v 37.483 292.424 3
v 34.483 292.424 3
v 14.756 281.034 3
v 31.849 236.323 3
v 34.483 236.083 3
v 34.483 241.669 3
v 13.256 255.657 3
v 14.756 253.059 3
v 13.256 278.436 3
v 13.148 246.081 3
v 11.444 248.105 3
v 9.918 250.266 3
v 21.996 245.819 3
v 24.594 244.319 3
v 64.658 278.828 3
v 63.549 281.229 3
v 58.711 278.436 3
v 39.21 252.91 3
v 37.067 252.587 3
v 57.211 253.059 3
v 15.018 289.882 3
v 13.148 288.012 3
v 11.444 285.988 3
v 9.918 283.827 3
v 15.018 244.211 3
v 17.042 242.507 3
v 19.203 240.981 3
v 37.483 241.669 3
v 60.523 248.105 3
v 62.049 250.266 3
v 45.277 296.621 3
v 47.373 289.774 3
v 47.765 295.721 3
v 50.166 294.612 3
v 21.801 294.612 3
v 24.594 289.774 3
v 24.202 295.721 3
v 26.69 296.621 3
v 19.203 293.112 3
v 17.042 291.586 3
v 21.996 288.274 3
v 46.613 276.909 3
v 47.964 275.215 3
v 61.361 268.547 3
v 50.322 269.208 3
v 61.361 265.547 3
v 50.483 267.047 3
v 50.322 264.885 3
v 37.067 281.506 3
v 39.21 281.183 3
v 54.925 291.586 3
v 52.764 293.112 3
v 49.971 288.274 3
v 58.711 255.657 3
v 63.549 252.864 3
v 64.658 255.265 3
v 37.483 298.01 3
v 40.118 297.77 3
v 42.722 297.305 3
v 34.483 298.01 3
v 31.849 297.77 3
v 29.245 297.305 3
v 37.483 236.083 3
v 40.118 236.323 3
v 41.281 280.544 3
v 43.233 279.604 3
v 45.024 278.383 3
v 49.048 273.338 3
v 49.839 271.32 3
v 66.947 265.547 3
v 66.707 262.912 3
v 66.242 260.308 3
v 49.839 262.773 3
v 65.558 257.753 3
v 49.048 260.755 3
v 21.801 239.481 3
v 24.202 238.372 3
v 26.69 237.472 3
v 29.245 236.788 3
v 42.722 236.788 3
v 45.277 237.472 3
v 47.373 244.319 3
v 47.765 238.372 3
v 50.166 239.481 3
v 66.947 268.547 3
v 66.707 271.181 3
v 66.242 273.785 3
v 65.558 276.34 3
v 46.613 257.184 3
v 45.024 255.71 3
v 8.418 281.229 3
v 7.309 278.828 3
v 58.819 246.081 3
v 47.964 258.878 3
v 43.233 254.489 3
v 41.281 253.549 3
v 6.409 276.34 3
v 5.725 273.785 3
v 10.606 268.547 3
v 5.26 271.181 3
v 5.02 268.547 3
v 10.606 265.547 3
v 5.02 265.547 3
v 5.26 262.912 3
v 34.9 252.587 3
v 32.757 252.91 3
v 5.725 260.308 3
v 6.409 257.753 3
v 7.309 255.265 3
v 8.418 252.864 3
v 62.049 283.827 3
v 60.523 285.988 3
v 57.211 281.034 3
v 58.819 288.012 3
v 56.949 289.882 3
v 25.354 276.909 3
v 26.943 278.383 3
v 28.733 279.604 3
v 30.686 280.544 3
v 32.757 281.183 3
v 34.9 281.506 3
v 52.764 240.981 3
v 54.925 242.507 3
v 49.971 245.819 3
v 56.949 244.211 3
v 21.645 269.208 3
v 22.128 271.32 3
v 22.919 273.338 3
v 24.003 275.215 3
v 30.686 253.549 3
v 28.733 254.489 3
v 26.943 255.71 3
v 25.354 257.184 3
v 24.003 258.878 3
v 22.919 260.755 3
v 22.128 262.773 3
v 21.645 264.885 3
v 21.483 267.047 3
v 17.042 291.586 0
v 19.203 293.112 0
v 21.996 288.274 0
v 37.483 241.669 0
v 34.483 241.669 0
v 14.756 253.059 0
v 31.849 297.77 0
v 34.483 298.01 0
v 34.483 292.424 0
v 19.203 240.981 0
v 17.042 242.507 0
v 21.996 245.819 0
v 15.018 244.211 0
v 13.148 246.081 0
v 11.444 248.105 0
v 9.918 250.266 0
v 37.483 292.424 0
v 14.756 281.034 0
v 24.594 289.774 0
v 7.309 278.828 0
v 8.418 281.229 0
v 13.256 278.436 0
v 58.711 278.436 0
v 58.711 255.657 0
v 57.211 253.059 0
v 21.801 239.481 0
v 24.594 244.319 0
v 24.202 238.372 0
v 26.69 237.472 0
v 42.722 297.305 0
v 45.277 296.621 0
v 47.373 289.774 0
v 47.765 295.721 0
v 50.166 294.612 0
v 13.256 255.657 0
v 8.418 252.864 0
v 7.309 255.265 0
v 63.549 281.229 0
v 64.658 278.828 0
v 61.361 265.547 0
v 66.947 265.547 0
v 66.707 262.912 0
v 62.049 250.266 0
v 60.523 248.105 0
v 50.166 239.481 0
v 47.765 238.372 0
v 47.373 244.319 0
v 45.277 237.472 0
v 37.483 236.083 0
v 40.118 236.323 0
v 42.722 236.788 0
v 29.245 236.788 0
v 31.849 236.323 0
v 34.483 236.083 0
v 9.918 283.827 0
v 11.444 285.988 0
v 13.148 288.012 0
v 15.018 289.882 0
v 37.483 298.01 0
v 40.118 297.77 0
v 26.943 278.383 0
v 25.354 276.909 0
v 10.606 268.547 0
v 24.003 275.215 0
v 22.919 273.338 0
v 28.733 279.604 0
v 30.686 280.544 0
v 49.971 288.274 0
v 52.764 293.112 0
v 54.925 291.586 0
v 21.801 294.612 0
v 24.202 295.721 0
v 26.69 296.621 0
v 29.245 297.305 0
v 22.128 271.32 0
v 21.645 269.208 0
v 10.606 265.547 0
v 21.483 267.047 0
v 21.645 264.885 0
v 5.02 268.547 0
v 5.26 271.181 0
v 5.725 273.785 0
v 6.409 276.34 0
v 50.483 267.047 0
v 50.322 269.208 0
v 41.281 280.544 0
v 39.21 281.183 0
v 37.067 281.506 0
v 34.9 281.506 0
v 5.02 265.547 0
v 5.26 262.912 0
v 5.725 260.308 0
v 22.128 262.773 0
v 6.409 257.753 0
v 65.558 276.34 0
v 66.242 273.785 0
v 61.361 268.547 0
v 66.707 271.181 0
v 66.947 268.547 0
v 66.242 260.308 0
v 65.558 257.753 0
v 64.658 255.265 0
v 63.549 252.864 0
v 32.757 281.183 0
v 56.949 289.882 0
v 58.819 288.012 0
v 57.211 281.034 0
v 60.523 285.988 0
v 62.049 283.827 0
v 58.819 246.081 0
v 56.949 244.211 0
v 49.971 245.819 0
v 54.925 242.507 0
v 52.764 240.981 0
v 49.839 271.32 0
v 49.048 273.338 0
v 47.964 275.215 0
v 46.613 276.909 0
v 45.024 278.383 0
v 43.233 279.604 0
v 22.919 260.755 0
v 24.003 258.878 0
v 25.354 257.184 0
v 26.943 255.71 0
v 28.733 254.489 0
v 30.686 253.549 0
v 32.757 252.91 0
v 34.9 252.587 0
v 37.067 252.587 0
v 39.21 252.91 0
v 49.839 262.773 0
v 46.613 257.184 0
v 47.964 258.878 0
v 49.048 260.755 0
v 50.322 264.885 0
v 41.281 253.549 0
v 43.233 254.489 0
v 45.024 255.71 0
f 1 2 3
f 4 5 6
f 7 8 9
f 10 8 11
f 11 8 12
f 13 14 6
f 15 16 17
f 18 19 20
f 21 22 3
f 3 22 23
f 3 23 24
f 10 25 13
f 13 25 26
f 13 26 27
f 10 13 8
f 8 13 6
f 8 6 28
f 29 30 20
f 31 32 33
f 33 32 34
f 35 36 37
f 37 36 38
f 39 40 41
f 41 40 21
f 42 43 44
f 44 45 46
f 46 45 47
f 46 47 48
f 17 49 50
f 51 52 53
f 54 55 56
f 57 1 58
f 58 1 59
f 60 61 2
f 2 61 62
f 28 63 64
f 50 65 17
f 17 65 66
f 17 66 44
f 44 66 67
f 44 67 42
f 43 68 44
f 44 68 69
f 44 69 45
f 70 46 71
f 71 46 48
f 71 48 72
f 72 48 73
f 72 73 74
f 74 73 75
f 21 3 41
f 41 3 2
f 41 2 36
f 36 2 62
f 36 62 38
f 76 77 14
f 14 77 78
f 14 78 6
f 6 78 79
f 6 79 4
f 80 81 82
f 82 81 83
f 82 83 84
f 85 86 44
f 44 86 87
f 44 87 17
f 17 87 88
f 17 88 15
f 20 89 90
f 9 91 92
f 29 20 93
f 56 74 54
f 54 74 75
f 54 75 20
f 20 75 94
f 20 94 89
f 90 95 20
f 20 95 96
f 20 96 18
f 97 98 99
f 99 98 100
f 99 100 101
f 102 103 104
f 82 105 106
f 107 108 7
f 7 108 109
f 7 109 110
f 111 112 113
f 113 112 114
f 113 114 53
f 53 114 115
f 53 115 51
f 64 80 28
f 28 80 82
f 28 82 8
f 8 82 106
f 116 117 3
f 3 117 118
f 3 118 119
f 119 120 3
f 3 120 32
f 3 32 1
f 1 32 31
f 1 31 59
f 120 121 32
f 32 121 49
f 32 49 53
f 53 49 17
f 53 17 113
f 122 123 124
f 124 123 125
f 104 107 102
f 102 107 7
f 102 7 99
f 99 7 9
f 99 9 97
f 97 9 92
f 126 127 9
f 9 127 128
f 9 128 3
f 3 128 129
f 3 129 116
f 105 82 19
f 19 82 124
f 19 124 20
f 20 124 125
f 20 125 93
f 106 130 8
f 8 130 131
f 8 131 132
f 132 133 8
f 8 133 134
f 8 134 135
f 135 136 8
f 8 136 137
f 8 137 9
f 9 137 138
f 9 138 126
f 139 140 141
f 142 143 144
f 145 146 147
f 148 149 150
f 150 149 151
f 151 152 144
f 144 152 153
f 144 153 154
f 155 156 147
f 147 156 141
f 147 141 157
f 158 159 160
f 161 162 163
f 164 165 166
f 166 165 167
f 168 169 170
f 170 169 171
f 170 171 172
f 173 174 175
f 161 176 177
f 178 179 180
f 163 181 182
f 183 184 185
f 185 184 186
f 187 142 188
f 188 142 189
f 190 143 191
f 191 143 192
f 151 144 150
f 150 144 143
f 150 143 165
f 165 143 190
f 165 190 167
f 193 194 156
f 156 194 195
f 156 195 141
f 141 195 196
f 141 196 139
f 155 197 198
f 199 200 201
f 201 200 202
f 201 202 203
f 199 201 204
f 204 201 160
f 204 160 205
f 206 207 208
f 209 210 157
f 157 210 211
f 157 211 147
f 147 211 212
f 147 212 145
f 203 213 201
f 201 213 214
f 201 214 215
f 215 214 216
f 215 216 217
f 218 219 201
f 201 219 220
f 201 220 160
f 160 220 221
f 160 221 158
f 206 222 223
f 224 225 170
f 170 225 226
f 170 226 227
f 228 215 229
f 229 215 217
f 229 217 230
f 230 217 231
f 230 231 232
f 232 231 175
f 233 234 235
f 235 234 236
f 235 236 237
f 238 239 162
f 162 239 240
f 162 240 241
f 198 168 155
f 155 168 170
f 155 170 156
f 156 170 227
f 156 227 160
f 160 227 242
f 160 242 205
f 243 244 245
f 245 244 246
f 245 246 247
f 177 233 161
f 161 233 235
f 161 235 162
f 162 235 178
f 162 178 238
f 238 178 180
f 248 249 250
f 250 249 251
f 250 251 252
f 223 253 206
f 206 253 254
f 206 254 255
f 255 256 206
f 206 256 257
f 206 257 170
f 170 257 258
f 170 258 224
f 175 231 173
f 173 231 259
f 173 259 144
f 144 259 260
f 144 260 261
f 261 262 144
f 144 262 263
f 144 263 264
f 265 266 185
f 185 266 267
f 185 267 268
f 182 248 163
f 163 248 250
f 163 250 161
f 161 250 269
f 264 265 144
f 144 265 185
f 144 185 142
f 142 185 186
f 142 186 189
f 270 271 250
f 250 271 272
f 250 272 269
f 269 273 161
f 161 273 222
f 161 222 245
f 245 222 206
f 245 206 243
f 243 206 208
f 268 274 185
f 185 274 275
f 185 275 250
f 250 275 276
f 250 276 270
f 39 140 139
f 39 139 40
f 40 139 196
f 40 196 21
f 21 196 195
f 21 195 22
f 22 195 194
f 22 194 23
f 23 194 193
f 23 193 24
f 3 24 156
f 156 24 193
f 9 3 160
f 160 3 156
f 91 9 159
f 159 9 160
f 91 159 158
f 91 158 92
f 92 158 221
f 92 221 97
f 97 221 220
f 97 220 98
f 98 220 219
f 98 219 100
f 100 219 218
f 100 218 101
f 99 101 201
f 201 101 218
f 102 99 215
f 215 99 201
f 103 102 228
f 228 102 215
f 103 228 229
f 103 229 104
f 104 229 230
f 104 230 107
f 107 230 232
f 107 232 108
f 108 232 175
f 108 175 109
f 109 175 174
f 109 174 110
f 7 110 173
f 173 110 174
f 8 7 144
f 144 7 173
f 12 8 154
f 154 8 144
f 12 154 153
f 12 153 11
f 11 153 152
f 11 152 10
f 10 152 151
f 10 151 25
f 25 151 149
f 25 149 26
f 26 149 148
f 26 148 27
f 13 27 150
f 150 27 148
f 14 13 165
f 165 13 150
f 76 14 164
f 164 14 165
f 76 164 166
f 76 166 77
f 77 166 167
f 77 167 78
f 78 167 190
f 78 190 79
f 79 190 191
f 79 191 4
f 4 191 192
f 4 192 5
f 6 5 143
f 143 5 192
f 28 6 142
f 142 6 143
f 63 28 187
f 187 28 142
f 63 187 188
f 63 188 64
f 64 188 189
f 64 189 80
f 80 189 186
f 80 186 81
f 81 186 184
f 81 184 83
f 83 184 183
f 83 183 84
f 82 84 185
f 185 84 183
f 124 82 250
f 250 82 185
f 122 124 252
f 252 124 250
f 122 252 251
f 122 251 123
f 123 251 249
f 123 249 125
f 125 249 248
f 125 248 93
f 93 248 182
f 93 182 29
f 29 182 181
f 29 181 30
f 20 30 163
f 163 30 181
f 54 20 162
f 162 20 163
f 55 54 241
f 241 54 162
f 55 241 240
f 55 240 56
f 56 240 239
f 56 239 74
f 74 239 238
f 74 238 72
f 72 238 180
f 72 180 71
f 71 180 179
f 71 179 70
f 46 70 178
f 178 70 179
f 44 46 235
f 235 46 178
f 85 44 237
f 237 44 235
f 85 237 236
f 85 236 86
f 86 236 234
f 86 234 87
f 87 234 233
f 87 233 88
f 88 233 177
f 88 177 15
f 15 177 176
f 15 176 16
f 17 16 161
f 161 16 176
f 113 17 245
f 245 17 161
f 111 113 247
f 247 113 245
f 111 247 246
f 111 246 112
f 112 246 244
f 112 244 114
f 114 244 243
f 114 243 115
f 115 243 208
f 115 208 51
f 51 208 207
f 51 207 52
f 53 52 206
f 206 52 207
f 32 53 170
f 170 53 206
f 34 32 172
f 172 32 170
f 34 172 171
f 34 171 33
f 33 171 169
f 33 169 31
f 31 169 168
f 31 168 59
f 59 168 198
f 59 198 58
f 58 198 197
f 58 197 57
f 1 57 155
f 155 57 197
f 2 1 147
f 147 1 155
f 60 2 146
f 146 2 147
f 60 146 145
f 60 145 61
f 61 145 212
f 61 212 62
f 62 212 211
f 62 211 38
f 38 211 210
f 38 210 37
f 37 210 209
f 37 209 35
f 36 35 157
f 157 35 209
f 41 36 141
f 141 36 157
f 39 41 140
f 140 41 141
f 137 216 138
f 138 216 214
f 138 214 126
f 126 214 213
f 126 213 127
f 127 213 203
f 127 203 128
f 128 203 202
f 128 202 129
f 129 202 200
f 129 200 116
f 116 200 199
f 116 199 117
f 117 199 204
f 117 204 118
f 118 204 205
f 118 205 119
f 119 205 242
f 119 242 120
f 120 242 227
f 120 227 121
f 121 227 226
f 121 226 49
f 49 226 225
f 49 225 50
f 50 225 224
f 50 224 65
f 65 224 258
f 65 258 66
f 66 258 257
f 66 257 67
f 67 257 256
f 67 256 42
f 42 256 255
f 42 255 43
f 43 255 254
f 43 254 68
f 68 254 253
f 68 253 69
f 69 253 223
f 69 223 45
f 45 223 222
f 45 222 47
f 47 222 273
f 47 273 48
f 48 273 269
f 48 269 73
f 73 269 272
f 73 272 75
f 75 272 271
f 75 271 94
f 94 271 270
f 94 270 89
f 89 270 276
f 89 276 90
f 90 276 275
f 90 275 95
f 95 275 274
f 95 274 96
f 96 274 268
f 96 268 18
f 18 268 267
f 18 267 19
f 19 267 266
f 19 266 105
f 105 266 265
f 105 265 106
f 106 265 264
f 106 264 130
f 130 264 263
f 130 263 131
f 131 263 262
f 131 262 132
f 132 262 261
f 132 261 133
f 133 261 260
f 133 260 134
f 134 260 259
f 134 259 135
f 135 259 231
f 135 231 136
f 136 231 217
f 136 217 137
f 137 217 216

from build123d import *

# Parameters (mm, degrees)
MODEL_R                 = 14.5
SALIENTE_EXTRUIR1_DEPTH = 3


with BuildPart() as part:
    # Model → Saliente-Extruir1 (new body)
    with BuildSketch(Plane.XY):
        with BuildLine():
            Line((47.37313945, 289.774034505), (50.166269539, 294.611877731))
            ThreePointArc((50.166269539, 294.611877731), (44.006853837, 296.990237588), (37.483463439, 298.010225383))
            Line((37.483463439, 298.010225383), (37.483463439, 292.423965206))
            Line((37.483463439, 292.423965206), (34.483463439, 292.423965206))
            Line((34.483463439, 292.423965206), (34.483463439, 298.010225383))
            ThreePointArc((34.483463439, 298.010225383), (27.960073041, 296.990237588), (21.800657339, 294.611877731))
            Line((21.800657339, 294.611877731), (24.593787428, 289.774034505))
            Line((24.593787428, 289.774034505), (21.995711217, 288.274034505))
            Line((21.995711217, 288.274034505), (19.202581128, 293.111877731))
            ThreePointArc((19.202581128, 293.111877731), (14.063153222, 288.966847189), (9.91812268, 283.827419284))
            Line((9.91812268, 283.827419284), (14.755965907, 281.034289195))
            Line((14.755965907, 281.034289195), (13.255965907, 278.436212983))
            Line((13.255965907, 278.436212983), (8.41812268, 281.229343072))
            ThreePointArc((8.41812268, 281.229343072), (6.039762824, 275.069927371), (5.019775028, 268.546536973))
            Line((5.019775028, 268.546536973), (10.606035206, 268.546536973))
            Line((10.606035206, 268.546536973), (10.606035206, 265.546536973))
            Line((10.606035206, 265.546536973), (5.019775028, 265.546536973))
            ThreePointArc((5.019775028, 265.546536973), (6.039762824, 259.023146574), (8.41812268, 252.863730873))
            Line((8.41812268, 252.863730873), (13.255965907, 255.656860962))
            Line((13.255965907, 255.656860962), (14.755965907, 253.05878475))
            Line((14.755965907, 253.05878475), (9.91812268, 250.265654662))
            ThreePointArc((9.91812268, 250.265654662), (14.063153222, 245.126226756), (19.202581128, 240.981196214))
            Line((19.202581128, 240.981196214), (21.995711217, 245.81903944))
            Line((21.995711217, 245.81903944), (24.593787428, 244.31903944))
            Line((24.593787428, 244.31903944), (21.800657339, 239.481196214))
            ThreePointArc((21.800657339, 239.481196214), (27.960073041, 237.102836358), (34.483463439, 236.082848562))
            Line((34.483463439, 236.082848562), (34.483463439, 241.66910874))
            Line((34.483463439, 241.66910874), (37.483463439, 241.66910874))
            Line((37.483463439, 241.66910874), (37.483463439, 236.082848562))
            ThreePointArc((37.483463439, 236.082848562), (44.006853837, 237.102836358), (50.166269539, 239.481196214))
            Line((50.166269539, 239.481196214), (47.37313945, 244.31903944))
            Line((47.37313945, 244.31903944), (49.971215661, 245.81903944))
            Line((49.971215661, 245.81903944), (52.76434575, 240.981196214))
            ThreePointArc((52.76434575, 240.981196214), (57.903773656, 245.126226756), (62.048804198, 250.265654662))
            Line((62.048804198, 250.265654662), (57.210960972, 253.05878475))
            Line((57.210960972, 253.05878475), (58.710960972, 255.656860962))
            Line((58.710960972, 255.656860962), (63.548804198, 252.863730873))
            ThreePointArc((63.548804198, 252.863730873), (65.927164054, 259.023146574), (66.94715185, 265.546536973))
            Line((66.94715185, 265.546536973), (61.360891672, 265.546536973))
            Line((61.360891672, 265.546536973), (61.360891672, 268.546536973))
            Line((61.360891672, 268.546536973), (66.94715185, 268.546536973))
            ThreePointArc((66.94715185, 268.546536973), (65.927164054, 275.069927371), (63.548804198, 281.229343072))
            Line((63.548804198, 281.229343072), (58.710960972, 278.436212983))
            Line((58.710960972, 278.436212983), (57.210960972, 281.034289195))
            Line((57.210960972, 281.034289195), (62.048804198, 283.827419284))
            ThreePointArc((62.048804198, 283.827419284), (57.903773656, 288.966847189), (52.76434575, 293.111877731))
            Line((52.76434575, 293.111877731), (49.971215661, 288.274034505))
            Line((49.971215661, 288.274034505), (47.37313945, 289.774034505))
        make_face()
        with Locations((35.983463439, 267.046536973)):
            Circle(MODEL_R, mode=Mode.SUBTRACT)
    extrude(amount=SALIENTE_EXTRUIR1_DEPTH)


solid = part.part
